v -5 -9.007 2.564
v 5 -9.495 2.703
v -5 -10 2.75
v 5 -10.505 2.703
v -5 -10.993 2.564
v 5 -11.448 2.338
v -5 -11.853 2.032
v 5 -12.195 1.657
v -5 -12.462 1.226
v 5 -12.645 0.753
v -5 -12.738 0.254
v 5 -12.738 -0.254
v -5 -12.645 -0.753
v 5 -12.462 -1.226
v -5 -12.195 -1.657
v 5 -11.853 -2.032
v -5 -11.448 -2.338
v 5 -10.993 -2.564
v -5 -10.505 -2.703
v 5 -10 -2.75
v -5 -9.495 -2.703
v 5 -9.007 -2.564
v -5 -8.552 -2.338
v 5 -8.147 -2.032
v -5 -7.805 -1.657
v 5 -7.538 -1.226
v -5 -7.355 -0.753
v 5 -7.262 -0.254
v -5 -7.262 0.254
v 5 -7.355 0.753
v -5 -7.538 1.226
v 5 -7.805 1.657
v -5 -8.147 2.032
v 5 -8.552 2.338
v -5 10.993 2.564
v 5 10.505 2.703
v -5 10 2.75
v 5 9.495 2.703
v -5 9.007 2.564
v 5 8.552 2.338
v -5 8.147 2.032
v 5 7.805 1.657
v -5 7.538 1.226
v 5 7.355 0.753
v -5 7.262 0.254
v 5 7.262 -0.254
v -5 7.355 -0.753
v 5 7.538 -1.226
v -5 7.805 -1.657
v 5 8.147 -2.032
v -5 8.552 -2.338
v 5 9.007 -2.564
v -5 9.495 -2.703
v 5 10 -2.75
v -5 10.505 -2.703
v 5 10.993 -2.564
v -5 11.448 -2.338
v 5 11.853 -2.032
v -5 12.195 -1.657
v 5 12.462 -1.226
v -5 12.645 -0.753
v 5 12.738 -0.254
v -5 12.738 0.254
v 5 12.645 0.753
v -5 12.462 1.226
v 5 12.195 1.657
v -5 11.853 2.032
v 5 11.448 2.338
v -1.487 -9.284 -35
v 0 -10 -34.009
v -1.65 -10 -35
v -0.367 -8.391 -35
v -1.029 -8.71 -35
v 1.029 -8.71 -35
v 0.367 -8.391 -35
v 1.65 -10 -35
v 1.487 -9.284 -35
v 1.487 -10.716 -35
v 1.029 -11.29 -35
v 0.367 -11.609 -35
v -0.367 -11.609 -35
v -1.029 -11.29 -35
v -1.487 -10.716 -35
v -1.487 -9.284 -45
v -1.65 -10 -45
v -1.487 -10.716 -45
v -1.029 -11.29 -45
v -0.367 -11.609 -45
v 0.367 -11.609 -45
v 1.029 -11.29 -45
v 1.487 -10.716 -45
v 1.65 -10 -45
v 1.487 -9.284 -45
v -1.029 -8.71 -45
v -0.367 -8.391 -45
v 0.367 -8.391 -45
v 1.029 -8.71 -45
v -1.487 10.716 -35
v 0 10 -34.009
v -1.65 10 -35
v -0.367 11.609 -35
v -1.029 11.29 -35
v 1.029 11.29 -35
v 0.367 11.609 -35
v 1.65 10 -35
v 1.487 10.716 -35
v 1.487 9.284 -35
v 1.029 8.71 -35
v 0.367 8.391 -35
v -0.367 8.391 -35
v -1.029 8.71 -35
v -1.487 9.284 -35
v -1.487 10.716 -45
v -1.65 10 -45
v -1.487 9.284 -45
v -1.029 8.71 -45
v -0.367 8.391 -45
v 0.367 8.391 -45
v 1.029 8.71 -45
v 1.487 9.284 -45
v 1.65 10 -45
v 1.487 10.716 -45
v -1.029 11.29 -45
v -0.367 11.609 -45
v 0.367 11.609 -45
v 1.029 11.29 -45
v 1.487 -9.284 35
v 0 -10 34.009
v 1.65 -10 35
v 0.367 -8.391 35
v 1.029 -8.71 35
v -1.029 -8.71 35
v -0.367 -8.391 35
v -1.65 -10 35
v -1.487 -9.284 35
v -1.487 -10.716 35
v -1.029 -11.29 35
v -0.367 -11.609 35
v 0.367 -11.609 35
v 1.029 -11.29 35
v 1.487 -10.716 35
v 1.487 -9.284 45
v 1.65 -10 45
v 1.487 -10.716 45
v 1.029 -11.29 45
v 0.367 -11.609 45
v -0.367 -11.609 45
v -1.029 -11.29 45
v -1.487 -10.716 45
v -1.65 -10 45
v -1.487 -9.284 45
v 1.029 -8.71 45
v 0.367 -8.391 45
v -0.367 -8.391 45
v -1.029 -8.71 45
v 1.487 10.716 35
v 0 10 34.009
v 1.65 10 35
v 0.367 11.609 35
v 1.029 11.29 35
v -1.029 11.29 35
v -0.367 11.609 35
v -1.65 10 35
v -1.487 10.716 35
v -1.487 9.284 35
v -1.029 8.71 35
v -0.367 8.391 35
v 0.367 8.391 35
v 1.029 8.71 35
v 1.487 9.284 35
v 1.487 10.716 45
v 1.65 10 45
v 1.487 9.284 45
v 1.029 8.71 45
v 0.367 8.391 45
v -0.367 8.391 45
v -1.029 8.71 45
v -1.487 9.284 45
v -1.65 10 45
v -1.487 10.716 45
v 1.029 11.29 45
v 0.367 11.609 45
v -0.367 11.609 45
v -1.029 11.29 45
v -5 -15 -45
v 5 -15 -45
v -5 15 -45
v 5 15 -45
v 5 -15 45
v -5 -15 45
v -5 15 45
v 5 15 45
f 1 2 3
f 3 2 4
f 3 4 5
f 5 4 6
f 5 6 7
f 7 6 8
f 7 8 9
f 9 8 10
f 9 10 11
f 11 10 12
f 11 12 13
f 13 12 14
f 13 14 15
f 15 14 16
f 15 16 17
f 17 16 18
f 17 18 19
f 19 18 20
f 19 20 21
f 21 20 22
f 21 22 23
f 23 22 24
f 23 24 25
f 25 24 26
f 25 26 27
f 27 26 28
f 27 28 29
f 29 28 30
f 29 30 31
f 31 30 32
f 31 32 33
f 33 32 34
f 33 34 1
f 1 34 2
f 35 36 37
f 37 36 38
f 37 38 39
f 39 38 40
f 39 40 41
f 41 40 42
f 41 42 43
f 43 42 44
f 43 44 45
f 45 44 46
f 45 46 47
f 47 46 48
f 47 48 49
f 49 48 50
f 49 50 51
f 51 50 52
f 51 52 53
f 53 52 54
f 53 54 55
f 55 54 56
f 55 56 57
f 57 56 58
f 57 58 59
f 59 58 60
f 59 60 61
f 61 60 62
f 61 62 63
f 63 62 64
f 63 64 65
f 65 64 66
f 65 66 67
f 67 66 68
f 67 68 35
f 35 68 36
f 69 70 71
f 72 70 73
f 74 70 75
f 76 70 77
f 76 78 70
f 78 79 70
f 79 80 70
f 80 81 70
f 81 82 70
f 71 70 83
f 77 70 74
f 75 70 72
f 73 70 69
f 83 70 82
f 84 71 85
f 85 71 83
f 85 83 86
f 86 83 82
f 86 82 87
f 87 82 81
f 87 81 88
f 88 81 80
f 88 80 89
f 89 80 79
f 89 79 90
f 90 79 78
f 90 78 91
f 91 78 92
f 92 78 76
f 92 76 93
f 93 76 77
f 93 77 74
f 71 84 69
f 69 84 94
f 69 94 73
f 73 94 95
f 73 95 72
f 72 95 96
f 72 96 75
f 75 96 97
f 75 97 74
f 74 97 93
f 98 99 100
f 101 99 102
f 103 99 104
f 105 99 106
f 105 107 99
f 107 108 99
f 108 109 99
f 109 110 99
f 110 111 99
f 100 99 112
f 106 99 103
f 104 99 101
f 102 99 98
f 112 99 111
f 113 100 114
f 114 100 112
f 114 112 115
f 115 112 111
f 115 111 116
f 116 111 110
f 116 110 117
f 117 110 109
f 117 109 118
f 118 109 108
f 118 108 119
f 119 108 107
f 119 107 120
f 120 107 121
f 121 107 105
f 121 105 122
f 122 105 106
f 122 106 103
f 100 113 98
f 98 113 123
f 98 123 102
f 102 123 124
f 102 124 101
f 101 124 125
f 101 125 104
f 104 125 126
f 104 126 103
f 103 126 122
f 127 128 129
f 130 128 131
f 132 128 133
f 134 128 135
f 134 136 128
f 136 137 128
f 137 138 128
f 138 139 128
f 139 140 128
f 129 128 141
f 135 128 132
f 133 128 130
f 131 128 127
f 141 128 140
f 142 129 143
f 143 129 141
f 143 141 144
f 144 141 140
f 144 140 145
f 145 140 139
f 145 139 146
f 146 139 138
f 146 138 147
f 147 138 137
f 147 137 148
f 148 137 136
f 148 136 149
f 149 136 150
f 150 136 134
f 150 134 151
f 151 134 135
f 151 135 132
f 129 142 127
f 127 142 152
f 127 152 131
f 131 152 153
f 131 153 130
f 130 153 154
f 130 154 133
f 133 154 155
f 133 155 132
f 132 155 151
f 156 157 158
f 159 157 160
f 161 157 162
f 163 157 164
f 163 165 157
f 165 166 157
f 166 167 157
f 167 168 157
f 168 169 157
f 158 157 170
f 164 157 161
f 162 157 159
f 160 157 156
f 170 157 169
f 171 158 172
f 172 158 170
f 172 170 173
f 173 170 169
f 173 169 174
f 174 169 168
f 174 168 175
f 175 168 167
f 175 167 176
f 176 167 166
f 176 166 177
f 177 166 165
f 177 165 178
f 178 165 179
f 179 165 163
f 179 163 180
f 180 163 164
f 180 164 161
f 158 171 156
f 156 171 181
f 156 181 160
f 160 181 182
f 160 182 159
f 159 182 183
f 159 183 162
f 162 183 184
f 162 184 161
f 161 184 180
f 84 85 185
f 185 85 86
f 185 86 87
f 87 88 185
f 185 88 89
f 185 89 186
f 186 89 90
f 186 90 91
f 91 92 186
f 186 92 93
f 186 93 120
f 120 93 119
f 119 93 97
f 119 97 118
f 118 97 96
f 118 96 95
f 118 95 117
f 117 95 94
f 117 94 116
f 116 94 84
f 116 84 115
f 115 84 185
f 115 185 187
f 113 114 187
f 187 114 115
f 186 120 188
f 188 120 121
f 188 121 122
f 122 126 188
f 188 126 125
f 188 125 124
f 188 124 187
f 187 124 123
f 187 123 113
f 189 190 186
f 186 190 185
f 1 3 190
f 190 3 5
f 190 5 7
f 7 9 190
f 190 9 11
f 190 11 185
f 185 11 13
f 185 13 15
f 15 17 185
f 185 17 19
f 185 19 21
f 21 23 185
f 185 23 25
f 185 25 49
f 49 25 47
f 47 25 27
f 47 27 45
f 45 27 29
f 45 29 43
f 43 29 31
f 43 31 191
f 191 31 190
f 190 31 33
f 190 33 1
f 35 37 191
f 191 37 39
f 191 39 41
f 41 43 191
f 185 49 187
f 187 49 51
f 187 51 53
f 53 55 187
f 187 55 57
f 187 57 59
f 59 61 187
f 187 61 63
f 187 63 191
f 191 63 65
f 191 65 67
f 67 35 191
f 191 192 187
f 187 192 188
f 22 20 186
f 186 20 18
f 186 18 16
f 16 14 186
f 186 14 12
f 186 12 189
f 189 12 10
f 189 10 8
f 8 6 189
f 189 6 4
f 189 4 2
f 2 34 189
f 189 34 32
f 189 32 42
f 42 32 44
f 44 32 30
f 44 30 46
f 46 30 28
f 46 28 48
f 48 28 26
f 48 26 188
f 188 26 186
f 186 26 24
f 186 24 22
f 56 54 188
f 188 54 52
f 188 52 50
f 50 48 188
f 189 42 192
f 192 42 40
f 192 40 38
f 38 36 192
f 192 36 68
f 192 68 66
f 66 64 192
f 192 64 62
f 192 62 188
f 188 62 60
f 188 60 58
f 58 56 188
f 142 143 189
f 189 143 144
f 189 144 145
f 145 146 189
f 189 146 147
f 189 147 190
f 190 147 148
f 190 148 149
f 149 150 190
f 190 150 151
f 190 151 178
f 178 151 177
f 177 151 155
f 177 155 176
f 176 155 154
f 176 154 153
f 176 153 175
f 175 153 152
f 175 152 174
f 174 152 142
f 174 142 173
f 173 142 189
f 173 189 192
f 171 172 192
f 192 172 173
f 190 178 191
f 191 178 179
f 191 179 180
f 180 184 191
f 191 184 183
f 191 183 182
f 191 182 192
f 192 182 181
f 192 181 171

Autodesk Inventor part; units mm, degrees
ref_plane "YZ Plane" through (0, 0, 0) normal (1, 0, 0) x (0, 1, 0)
ref_plane "XZ Plane" through (0, 0, 0) normal (0, 1, 0) x (-1, 0, 0)
ref_plane "XY Plane" through (0, 0, 0) normal (0, 0, 1) x (1, 0, 0)
sketch "スケッチ1" plane through (0, 0, 0) normal (0, 0, 1) x (1, 0, 0)
  line L0 (-5, -15) -> (5, -15)
  line L1 (5, -15) -> (5, 15)
  line L2 (5, 15) -> (-5, 15)
  line L3 (-5, 15) -> (-5, -15)
  line L4 (-5, -15) -> (5, 15) construction
  line L5 (5, -15) -> (-5, 15) construction
  point P0 (0, 0)
  dimension "d0" = 10
  dimension "d1" = 30
extrude "押し出し1" add sketch "スケッチ1" along normal mid plane 90
sketch "スケッチ2" plane through (0, 0, 45) normal (0, 0, 1) x (1, 0, 0)
  line L0 (5, 15) -> (-5, 15) projected
  line L1 (5, -15) -> (5, 15) projected
  line L2 (-5, -15) -> (5, -15) projected
  point P0 (0, 0)
  point P1 (0, 10)
  point P2 (0, -10)
  dimension "d4" = 5
  dimension "d5" = 5
  dimension "d6" = 5
  dimension "d7" = 5
hole "穴1" at (0, 10, 45) at (0, -10, 45) direction (0, 0, -1) diameter 3.3 depth 10 tip angle 118
sketch "スケッチ3" plane through (0, 0, -45) normal (0, 0, -1) x (-1, 0, 0)
  circle A0 centre (0, 10) radius 1.65 projected
  circle A1 centre (0, -10) radius 1.65 projected
  point P0 (0, 0)
hole "穴2" at (0, 10, -45) at (0, -10, -45) direction (0, 0, 1) diameter 3.3 depth 10 tip angle 118
sketch "スケッチ4" plane through (5, -15, 45) normal (1, 0, 0) x (0, 0, -1)
  line L0 (90, 30) -> (0, 30) projected
  line L1 (0, 0) -> (0, 30) projected
  point P0 (45, 15)
  point P1 (45, 25)
  point P2 (45, 5)
  point P3 (45, 30)
  dimension "d22" = 5
  dimension "d23" = 20
  dimension "d24" = 45
  dimension "d25" = 45
hole "穴3" at (5, 10, 0) at (5, -10, 0) direction (-1, 0, 0) diameter 5.5 end through all
equation "\"d5\" = d4"
equation "\"d6\" = d4"
equation "\"d7\" = d4"
equation "\"d25\" = d24"
properties part number "base_part_attachment_ver2"
